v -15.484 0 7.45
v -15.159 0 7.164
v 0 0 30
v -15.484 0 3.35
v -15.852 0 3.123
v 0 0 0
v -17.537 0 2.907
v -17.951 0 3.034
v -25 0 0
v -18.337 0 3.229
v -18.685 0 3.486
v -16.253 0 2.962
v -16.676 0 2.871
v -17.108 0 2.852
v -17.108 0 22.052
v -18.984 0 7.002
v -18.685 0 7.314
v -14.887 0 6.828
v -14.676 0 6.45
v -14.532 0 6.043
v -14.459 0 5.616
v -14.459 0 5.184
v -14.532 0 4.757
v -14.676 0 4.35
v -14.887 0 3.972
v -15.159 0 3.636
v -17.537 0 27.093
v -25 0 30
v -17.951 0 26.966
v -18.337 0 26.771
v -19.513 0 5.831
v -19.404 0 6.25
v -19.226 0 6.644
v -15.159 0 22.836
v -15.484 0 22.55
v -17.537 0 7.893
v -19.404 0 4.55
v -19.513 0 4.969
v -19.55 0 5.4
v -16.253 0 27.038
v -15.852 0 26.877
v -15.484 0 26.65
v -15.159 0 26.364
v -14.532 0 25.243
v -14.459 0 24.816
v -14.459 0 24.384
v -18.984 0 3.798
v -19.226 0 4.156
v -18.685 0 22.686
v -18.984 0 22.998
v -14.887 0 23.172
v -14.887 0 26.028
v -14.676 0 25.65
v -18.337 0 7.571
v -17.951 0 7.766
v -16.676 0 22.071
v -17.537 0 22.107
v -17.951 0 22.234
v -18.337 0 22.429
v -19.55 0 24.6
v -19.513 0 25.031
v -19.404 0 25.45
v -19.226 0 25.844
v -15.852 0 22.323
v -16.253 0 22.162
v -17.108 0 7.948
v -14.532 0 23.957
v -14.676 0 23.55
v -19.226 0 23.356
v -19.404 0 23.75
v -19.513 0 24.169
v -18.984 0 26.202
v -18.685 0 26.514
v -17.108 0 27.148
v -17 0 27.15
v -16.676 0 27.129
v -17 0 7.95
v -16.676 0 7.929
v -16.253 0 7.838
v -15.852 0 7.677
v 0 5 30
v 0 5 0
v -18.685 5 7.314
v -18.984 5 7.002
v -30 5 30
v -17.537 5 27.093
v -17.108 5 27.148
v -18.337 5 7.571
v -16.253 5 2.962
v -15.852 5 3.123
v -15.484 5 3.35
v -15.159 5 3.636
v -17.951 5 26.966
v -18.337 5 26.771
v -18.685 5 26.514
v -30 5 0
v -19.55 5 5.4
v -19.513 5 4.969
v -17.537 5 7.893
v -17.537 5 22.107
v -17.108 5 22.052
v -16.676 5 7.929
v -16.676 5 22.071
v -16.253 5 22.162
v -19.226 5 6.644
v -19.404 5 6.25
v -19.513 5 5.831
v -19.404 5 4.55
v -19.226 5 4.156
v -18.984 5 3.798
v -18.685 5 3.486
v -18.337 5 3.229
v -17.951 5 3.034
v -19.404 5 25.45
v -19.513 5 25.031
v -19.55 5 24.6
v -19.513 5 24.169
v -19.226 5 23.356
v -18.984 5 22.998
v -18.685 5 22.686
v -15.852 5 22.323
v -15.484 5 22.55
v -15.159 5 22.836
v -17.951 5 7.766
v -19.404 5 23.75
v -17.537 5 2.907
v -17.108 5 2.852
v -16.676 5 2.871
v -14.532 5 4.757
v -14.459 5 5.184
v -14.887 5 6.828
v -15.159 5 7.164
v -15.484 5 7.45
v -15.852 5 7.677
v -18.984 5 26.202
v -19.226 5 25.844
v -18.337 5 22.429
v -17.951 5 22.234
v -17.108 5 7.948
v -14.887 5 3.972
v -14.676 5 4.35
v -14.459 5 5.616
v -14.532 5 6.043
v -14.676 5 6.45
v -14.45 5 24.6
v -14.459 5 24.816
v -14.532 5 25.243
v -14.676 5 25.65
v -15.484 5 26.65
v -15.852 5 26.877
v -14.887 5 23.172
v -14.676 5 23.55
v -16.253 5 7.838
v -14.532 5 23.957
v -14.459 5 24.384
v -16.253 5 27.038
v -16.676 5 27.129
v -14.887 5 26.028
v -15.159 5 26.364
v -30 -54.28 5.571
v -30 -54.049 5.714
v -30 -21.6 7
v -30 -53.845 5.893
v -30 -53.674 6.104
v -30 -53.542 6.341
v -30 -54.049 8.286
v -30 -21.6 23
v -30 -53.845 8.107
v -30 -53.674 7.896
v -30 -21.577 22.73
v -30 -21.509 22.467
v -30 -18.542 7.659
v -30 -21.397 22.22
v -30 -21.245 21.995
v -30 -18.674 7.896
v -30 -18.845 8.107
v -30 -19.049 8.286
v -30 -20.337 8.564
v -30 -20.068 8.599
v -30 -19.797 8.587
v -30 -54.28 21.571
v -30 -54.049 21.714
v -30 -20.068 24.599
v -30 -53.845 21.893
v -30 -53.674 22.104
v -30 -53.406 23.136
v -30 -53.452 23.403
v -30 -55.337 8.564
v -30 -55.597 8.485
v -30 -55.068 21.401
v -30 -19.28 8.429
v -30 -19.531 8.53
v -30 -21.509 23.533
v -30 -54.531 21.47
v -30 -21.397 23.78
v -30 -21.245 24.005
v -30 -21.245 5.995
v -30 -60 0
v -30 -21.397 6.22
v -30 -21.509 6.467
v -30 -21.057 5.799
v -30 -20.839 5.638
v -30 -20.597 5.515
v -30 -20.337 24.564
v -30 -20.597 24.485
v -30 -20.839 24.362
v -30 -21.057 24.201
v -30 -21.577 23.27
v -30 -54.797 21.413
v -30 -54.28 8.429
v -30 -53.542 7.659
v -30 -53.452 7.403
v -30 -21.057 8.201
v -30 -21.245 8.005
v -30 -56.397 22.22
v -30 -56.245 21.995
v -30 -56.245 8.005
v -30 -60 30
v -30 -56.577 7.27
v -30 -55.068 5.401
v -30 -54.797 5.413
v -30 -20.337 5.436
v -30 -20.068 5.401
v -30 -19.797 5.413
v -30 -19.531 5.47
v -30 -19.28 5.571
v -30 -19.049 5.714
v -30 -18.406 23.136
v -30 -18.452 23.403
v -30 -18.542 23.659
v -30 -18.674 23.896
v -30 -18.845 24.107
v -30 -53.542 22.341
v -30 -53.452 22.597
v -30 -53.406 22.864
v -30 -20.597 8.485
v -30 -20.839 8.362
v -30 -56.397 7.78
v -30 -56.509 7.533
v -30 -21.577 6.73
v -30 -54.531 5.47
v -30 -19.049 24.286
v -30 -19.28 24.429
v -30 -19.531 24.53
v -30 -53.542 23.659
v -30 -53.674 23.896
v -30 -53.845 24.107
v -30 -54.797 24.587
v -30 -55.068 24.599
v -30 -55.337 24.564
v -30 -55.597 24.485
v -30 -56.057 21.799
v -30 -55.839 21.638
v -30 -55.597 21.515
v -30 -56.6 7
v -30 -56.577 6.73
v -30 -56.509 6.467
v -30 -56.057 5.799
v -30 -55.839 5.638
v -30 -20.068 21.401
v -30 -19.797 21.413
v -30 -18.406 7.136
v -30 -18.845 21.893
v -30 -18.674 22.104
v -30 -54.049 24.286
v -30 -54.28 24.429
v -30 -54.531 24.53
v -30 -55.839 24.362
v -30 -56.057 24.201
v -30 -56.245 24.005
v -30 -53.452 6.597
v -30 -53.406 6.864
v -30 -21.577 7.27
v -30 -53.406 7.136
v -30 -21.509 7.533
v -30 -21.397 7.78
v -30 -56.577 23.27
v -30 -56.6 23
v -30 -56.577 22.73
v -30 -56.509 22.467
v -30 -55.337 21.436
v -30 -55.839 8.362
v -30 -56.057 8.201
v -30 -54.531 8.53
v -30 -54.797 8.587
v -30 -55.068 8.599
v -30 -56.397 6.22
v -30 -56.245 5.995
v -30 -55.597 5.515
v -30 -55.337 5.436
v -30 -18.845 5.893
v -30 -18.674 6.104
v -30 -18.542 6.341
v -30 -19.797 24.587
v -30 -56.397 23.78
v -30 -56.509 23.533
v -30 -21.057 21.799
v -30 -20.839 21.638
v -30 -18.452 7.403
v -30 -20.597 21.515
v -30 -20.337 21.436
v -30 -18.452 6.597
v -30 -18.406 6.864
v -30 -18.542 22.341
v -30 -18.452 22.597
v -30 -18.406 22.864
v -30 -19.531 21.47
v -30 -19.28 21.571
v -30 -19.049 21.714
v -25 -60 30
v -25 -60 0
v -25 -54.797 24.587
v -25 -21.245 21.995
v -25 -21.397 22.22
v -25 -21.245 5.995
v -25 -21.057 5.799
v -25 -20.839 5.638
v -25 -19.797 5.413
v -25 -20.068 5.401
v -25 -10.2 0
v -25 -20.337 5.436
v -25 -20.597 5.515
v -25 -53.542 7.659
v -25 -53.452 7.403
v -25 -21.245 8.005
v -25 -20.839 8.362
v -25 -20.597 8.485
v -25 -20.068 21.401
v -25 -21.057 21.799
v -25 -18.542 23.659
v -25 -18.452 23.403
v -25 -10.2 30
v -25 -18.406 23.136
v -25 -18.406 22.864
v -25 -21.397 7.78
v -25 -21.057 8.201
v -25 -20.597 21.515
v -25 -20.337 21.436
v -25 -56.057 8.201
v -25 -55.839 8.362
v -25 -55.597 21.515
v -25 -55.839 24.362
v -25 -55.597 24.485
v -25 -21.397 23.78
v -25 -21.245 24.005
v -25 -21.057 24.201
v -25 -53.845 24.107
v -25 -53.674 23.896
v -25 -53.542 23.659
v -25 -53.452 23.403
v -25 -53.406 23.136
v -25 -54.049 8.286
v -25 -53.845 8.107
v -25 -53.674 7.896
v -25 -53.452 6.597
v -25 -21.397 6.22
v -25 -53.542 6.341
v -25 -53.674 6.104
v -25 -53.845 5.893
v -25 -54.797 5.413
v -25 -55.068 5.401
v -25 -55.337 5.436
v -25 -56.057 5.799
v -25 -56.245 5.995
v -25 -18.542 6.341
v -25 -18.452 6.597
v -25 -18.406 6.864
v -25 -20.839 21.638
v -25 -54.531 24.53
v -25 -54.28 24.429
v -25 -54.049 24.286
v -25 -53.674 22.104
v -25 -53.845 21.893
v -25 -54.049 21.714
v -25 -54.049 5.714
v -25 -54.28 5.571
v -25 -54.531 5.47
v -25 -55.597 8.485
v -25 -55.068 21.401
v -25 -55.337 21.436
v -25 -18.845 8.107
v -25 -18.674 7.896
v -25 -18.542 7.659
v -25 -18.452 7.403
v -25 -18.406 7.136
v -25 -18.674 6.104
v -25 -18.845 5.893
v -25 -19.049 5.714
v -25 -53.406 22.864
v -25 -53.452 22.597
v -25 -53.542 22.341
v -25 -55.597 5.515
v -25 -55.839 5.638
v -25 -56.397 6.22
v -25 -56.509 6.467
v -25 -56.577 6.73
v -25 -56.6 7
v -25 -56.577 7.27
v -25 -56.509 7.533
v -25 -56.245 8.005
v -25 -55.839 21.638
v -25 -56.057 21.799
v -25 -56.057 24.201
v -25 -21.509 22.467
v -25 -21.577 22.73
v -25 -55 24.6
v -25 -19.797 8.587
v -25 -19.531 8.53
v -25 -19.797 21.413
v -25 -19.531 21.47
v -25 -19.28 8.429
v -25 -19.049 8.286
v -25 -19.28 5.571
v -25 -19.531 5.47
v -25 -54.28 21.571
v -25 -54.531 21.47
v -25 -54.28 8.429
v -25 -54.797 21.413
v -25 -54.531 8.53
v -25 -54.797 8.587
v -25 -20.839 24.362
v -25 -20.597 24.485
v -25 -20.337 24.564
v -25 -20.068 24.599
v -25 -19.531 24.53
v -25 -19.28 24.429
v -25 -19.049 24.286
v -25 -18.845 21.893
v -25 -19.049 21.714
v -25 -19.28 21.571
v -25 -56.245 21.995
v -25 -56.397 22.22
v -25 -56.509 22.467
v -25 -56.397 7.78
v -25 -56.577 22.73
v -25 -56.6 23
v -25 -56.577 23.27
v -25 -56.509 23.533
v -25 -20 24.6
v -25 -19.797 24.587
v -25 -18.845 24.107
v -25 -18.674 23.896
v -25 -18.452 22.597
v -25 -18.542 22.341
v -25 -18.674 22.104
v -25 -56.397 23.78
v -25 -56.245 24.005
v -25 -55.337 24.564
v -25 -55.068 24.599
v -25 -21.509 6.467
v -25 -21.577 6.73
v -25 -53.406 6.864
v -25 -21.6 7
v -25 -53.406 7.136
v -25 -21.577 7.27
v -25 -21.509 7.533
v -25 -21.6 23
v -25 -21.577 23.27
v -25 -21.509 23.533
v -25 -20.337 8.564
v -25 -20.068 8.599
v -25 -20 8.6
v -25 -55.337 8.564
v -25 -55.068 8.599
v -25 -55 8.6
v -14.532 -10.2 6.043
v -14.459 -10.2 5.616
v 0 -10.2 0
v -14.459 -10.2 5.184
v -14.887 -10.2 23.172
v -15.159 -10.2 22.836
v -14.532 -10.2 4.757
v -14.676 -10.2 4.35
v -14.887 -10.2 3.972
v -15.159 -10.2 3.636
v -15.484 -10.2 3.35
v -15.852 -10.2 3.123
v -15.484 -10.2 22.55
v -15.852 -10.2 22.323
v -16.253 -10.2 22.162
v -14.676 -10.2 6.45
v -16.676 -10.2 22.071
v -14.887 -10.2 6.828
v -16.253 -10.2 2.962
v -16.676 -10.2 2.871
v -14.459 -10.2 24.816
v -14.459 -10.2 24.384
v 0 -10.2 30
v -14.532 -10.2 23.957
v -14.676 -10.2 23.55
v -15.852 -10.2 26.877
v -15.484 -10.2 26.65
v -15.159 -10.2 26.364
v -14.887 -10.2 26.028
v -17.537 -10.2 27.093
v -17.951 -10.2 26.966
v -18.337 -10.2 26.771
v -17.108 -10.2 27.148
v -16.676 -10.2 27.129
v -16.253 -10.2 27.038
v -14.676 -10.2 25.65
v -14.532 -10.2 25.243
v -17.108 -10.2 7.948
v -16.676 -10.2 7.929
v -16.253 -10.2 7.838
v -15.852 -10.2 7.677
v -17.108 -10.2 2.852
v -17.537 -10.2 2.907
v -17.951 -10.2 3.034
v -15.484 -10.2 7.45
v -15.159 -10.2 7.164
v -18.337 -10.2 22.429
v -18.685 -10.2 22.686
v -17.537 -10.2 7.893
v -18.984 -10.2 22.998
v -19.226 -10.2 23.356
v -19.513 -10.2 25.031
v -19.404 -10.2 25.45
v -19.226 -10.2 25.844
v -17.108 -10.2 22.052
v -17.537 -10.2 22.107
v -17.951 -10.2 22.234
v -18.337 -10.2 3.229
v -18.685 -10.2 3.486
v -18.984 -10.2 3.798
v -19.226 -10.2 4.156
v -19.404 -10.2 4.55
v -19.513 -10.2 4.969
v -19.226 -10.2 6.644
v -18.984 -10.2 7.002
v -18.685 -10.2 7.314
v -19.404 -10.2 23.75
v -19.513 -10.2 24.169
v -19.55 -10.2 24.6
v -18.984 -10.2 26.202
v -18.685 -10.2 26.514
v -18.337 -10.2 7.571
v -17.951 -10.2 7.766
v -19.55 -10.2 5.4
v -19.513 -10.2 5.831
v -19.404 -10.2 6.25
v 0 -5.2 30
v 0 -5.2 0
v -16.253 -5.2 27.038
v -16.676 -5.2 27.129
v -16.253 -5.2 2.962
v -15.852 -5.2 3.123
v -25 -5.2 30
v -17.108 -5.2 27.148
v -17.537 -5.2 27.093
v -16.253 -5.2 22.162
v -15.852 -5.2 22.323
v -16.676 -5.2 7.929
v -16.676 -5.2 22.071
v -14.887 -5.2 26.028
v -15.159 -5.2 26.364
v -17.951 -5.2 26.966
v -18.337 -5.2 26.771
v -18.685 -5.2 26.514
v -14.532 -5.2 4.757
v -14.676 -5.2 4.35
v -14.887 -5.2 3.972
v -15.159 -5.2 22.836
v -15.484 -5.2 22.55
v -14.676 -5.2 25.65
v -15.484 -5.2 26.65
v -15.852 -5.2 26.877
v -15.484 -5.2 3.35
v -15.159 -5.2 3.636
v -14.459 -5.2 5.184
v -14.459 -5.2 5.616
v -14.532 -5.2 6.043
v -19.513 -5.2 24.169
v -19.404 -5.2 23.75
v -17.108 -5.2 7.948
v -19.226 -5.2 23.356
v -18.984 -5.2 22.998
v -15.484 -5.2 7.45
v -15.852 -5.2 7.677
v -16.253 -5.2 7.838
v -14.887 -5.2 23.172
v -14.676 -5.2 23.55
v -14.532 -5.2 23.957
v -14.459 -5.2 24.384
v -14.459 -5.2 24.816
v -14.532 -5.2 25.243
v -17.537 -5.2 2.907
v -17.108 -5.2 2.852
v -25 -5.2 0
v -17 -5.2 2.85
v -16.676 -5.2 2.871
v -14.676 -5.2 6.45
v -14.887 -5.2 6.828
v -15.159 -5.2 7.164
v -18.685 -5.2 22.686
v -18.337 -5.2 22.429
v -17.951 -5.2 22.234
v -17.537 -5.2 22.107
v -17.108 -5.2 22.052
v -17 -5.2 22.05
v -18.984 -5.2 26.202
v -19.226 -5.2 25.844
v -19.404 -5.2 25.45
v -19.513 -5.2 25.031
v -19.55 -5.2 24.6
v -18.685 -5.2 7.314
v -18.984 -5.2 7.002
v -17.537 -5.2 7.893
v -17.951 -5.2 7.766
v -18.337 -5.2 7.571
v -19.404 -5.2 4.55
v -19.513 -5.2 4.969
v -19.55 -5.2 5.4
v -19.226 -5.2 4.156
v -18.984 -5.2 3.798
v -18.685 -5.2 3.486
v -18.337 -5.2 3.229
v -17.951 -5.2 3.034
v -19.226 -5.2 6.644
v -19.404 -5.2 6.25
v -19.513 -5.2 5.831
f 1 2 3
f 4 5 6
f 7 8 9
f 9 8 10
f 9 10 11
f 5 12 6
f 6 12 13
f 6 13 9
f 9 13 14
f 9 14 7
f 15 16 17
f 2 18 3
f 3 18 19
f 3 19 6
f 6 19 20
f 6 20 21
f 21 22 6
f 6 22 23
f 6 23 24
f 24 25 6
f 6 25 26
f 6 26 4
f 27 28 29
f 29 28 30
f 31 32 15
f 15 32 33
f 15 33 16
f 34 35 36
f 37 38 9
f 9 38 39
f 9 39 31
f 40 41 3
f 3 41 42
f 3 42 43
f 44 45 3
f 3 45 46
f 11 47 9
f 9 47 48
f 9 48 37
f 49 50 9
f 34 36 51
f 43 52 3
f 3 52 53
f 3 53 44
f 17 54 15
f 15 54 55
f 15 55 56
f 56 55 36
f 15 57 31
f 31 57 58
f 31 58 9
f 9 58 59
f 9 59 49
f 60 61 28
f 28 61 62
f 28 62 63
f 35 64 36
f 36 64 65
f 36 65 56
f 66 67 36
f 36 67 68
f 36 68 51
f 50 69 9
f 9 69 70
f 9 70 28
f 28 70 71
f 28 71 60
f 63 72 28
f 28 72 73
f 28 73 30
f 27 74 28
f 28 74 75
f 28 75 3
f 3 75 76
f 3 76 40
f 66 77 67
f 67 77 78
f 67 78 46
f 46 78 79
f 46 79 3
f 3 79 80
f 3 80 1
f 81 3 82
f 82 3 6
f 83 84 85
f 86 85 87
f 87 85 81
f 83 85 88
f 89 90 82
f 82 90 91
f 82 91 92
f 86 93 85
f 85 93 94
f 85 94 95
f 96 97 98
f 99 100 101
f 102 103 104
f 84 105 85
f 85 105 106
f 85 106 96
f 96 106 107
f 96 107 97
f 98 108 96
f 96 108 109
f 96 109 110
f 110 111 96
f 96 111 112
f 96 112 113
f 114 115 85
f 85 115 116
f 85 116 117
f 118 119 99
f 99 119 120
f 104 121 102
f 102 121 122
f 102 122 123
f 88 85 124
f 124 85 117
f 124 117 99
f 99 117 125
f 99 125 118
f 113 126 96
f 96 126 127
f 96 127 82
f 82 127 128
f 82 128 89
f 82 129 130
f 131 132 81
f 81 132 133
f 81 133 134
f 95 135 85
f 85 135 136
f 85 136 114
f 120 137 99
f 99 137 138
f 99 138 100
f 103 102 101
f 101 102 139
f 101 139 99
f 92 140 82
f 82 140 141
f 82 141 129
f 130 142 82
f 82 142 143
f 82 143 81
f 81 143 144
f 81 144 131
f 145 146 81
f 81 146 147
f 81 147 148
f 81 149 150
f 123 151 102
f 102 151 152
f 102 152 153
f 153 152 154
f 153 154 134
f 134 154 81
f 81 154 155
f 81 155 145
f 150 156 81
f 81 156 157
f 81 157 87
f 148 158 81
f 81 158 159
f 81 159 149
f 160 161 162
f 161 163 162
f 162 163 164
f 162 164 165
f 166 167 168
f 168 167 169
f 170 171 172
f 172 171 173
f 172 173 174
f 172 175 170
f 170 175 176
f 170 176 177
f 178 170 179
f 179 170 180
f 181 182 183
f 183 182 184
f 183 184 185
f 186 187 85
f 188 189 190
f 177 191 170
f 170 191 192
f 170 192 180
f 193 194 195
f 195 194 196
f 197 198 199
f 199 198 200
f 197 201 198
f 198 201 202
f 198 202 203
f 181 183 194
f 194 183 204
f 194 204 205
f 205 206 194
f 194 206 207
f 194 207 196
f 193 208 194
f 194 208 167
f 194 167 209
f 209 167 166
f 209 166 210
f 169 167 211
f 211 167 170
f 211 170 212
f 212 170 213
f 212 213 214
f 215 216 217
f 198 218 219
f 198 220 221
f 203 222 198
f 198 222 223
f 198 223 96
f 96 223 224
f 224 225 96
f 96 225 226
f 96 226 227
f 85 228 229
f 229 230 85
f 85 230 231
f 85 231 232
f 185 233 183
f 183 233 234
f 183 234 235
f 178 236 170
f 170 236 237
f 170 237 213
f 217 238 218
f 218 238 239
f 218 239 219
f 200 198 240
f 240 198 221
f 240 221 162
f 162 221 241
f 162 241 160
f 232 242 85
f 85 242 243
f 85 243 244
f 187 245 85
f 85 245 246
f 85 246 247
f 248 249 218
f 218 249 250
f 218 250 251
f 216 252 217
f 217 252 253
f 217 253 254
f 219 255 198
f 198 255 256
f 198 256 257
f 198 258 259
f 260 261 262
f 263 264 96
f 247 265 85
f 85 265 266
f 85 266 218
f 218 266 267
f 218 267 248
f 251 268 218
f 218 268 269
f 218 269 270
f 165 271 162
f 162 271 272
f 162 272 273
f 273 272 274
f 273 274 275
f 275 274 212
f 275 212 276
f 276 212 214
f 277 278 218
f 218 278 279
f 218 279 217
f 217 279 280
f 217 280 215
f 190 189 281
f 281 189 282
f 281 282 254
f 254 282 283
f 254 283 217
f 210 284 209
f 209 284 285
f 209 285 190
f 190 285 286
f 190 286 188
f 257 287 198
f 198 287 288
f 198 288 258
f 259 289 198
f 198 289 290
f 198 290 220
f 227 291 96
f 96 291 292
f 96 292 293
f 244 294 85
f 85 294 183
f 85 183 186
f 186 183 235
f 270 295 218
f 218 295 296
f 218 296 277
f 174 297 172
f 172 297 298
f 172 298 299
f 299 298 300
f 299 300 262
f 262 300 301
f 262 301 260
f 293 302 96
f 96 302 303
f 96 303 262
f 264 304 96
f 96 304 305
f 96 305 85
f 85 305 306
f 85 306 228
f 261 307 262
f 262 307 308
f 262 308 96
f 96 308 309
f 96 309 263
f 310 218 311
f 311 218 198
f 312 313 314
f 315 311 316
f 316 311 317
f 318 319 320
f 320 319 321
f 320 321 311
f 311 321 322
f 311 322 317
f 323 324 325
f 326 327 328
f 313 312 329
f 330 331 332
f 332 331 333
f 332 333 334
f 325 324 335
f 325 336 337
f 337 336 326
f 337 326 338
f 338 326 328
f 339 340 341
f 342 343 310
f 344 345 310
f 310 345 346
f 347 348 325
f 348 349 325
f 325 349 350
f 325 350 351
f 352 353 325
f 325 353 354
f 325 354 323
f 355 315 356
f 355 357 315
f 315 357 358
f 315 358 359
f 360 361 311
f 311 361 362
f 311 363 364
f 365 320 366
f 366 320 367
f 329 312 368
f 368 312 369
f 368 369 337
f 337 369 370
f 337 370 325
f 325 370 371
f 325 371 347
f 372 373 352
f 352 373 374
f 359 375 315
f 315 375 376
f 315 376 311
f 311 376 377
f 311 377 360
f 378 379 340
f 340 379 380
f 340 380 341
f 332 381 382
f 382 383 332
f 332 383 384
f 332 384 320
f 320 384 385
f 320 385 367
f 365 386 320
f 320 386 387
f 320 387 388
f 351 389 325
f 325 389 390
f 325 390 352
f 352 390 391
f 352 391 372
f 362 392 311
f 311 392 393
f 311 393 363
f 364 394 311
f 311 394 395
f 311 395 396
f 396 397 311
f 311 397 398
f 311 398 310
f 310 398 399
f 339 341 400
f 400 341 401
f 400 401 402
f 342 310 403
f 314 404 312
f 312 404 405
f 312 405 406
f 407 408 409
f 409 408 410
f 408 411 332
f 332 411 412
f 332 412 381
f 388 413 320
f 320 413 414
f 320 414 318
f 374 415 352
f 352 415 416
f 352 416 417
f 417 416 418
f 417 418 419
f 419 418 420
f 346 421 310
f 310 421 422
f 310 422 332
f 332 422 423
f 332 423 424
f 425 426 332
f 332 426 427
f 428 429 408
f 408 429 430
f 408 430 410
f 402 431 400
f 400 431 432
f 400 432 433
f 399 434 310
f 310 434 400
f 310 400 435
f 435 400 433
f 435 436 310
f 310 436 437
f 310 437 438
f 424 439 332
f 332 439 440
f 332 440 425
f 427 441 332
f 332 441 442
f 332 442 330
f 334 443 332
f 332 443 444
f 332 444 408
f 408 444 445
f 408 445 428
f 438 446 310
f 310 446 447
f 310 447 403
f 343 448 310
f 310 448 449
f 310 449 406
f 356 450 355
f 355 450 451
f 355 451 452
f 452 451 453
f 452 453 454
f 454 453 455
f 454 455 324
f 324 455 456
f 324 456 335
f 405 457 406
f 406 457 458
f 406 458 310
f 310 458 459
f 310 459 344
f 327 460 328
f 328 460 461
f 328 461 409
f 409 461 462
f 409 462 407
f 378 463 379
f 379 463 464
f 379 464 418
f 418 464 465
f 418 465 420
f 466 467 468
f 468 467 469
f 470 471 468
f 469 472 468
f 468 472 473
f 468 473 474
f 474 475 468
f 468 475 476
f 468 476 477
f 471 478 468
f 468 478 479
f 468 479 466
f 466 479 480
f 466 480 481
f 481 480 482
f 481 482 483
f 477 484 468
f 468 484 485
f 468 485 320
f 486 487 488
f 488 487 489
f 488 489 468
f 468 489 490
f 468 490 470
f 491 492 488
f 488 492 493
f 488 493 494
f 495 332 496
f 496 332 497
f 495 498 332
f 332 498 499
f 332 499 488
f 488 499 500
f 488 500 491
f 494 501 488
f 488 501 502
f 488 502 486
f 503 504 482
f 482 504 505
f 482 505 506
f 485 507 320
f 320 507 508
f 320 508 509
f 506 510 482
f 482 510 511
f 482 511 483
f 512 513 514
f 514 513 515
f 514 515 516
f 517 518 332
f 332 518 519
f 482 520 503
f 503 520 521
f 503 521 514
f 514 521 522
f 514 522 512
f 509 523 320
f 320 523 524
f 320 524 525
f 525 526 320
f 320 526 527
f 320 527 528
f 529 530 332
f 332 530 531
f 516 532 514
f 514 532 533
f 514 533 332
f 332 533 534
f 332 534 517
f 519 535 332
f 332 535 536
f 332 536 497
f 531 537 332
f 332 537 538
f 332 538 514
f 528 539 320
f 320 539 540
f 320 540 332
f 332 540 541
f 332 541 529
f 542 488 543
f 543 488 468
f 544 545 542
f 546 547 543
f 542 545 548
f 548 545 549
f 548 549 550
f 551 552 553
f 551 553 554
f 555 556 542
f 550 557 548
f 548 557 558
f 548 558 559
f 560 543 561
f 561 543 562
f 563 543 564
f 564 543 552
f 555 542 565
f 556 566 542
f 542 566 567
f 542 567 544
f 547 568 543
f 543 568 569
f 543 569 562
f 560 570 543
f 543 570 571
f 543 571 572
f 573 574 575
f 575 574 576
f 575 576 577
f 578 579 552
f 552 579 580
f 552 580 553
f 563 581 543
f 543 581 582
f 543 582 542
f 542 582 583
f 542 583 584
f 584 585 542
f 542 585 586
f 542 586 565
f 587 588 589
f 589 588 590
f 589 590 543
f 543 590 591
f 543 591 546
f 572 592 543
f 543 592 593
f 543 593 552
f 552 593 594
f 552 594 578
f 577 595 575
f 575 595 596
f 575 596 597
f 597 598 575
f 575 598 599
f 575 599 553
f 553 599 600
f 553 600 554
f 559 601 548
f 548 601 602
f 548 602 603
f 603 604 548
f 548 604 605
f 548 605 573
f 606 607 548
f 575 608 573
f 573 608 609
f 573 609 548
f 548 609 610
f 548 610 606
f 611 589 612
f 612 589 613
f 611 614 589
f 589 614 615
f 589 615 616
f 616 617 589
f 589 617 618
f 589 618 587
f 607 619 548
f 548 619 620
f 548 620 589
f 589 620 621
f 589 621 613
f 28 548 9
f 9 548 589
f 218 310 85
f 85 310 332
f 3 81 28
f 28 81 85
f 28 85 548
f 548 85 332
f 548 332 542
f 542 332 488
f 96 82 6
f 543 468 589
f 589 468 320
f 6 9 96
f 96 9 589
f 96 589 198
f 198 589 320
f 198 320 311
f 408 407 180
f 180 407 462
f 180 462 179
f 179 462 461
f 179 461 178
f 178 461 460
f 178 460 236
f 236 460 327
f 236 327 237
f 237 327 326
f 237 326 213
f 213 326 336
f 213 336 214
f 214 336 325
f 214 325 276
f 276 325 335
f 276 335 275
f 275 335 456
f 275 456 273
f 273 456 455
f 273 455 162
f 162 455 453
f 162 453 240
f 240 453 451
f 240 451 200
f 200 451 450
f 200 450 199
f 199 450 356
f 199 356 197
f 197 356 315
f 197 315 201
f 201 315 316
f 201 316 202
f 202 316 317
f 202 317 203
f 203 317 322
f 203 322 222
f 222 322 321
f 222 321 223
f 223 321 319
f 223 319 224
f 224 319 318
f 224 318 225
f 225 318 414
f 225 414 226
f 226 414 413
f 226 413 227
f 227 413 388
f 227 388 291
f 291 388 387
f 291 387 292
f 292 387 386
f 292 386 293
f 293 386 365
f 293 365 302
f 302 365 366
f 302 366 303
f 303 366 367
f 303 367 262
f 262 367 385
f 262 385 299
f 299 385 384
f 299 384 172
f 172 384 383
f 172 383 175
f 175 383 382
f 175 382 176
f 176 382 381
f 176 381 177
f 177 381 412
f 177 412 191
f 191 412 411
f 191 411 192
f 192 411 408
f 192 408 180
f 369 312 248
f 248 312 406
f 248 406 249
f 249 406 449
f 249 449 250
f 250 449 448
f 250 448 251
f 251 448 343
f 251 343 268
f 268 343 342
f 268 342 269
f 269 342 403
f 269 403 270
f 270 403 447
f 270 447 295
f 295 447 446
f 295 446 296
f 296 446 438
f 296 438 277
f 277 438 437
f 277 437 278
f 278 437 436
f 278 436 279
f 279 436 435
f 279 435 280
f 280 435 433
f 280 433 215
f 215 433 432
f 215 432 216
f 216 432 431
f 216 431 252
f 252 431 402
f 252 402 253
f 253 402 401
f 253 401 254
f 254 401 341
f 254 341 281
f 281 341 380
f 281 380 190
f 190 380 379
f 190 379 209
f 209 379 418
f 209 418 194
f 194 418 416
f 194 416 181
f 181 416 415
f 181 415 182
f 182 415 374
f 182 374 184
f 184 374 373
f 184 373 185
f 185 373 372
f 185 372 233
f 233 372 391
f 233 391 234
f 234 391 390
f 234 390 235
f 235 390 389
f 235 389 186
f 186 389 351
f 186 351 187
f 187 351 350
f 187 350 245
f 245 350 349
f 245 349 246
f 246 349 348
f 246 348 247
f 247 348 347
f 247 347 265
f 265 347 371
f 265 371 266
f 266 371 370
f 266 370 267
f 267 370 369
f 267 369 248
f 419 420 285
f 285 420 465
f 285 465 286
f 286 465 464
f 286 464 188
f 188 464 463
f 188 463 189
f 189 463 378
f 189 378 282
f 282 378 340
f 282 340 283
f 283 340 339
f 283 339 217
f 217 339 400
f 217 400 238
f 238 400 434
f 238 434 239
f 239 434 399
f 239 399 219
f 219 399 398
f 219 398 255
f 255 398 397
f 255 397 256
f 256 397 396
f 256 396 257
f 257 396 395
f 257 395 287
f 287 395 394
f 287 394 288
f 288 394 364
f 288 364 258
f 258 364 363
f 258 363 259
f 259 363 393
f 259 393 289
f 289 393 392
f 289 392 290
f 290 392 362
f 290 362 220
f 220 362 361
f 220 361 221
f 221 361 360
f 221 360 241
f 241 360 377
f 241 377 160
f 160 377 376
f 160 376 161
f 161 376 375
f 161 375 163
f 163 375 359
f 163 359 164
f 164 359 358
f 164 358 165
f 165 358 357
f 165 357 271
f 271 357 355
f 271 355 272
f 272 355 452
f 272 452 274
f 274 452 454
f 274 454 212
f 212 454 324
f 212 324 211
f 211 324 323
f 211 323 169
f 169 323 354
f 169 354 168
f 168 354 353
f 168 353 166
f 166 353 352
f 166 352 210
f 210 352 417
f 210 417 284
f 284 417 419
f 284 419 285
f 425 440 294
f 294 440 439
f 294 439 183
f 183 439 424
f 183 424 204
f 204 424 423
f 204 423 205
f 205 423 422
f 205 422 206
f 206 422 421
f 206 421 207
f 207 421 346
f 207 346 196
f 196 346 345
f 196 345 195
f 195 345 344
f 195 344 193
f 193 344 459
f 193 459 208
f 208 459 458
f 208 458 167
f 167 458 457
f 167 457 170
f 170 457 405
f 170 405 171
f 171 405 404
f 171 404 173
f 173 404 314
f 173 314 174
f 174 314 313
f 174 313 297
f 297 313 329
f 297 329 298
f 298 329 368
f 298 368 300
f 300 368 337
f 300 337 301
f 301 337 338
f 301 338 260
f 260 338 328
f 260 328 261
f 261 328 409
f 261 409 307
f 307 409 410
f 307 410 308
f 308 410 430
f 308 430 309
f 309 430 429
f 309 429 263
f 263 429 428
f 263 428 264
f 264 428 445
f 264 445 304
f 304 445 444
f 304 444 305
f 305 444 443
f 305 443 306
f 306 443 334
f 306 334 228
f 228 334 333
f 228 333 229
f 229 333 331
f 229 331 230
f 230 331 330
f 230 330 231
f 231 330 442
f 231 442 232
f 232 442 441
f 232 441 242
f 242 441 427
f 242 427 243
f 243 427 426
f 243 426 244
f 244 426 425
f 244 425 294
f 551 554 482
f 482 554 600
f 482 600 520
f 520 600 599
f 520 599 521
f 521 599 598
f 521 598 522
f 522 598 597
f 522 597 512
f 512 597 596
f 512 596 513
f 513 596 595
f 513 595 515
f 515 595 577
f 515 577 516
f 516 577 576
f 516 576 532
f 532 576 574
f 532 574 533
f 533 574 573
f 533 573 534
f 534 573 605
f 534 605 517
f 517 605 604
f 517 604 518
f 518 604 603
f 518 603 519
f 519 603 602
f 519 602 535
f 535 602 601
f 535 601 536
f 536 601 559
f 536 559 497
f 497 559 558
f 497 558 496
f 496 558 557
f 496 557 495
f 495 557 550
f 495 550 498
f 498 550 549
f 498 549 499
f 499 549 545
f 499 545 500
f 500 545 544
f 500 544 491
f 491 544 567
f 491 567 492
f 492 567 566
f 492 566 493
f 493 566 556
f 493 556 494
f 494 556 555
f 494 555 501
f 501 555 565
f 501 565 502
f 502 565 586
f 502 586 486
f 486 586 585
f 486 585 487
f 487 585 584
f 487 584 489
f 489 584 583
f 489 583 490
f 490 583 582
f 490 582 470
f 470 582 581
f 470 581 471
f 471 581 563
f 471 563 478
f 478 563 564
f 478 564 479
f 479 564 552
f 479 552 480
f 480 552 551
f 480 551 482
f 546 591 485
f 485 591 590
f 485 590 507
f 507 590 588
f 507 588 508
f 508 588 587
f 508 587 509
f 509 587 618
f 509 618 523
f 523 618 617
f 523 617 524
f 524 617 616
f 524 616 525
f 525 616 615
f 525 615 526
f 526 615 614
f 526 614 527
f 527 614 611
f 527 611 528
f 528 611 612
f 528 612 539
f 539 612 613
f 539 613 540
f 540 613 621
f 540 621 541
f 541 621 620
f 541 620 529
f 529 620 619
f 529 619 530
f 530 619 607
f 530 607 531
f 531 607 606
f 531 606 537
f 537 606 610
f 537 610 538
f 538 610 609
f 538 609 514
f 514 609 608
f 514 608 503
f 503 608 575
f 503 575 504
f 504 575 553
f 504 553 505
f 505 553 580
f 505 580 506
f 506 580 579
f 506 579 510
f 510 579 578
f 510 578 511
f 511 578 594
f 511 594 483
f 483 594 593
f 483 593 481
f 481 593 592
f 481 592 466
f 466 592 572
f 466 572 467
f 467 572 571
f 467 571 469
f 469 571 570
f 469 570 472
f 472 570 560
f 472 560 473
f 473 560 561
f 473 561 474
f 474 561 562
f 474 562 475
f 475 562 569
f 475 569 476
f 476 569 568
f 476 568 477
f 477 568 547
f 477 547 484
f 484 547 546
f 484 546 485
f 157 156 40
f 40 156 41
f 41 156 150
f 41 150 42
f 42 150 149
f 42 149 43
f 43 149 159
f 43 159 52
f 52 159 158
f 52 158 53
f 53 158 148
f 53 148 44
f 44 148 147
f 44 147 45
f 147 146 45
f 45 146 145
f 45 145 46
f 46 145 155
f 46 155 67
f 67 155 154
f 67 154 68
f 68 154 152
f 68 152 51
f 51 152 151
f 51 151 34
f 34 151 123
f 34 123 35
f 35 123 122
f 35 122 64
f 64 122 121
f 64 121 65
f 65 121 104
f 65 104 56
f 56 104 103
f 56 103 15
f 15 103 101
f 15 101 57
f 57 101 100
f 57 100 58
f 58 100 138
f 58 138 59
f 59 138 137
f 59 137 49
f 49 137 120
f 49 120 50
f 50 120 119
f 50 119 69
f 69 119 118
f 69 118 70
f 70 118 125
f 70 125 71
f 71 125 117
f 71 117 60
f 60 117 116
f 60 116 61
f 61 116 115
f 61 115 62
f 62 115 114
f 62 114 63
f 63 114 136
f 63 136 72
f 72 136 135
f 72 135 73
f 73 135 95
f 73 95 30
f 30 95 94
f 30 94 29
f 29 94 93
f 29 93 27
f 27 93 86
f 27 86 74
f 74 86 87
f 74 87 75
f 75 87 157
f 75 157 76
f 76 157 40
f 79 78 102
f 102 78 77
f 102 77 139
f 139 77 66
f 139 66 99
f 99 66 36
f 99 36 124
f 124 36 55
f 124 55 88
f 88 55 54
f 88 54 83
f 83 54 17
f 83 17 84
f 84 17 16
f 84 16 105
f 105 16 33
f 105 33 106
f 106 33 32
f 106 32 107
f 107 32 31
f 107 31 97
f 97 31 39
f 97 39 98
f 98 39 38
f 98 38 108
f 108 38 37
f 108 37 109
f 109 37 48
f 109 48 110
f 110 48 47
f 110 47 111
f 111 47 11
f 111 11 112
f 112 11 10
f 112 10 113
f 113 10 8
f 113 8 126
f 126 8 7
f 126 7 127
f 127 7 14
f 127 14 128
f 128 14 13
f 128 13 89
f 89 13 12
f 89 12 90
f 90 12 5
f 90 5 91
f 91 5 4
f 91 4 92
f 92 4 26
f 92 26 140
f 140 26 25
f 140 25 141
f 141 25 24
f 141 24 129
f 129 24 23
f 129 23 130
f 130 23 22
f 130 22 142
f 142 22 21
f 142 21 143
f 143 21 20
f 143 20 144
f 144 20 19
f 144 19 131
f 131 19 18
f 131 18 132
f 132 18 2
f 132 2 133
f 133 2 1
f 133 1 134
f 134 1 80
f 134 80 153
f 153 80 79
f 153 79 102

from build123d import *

# Parameters (mm, degrees)
BOSS_EXTRUDE1_DEPTH = 30
CUT_EXTRUDE1_REACH  = 75.485
SKETCH2_R           = 1.6
SKETCH3_R           = 2.55
CUT_EXTRUDE2_DEPTH  = 78.620873481


with BuildPart() as part:
    # Sketch1 → Boss-Extrude1 (new body)
    with BuildSketch(Plane.XY):
        Polygon((0, 0), (0, 5), (-30, 5), (-30, -60), (-25, -60), (-25, -10.2), (0, -10.2), (0, -5.2), (-25, -5.2), (-25, 0), align=None)
    extrude(amount=BOSS_EXTRUDE1_DEPTH)

    # Sketch2 → Cut-Extrude1 (cut, up to next)
    with BuildSketch(Plane.ZY.offset(30), mode=Mode.PRIVATE) as cut_extrude1_sk1:
        with Locations(Location((7, -20, 0), (0, 0, 270))):
            Circle(SKETCH2_R)
    cut_extrude1_tool1 = extrude(cut_extrude1_sk1.sketch, amount=-CUT_EXTRUDE1_REACH, mode=Mode.PRIVATE) & part.part
    # Sketch2 → Cut-Extrude1 (cut, up to next)
    with BuildSketch(Plane.ZY.offset(30), mode=Mode.PRIVATE) as cut_extrude1_sk2:
        with Locations(Location((23, -20, 0), (0, 0, 270))):
            Circle(SKETCH2_R)
    cut_extrude1_tool2 = extrude(cut_extrude1_sk2.sketch, amount=-CUT_EXTRUDE1_REACH, mode=Mode.PRIVATE) & part.part
    # Sketch2 → Cut-Extrude1 (cut, up to next)
    with BuildSketch(Plane.ZY.offset(30), mode=Mode.PRIVATE) as cut_extrude1_sk3:
        with Locations(Location((7, -55, 0), (0, 0, 270))):
            Circle(SKETCH2_R)
    cut_extrude1_tool3 = extrude(cut_extrude1_sk3.sketch, amount=-CUT_EXTRUDE1_REACH, mode=Mode.PRIVATE) & part.part
    # Sketch2 → Cut-Extrude1 (cut, up to next)
    with BuildSketch(Plane.ZY.offset(30), mode=Mode.PRIVATE) as cut_extrude1_sk4:
        with Locations(Location((23, -55, 0), (0, 0, 270))):
            Circle(SKETCH2_R)
    cut_extrude1_tool4 = extrude(cut_extrude1_sk4.sketch, amount=-CUT_EXTRUDE1_REACH, mode=Mode.PRIVATE) & part.part
    add(cut_extrude1_tool1.solids().sort_by_distance((-30, -20, 7))[0], mode=Mode.SUBTRACT)
    add(cut_extrude1_tool2.solids().sort_by_distance((-30, -20, 23))[0], mode=Mode.SUBTRACT)
    add(cut_extrude1_tool3.solids().sort_by_distance((-30, -55, 7))[0], mode=Mode.SUBTRACT)
    add(cut_extrude1_tool4.solids().sort_by_distance((-30, -55, 23))[0], mode=Mode.SUBTRACT)

    # Sketch3 → Cut-Extrude2 (cut, through all)
    with BuildSketch(Plane(origin=(0, 5, 0), x_dir=(1, 0, 0), z_dir=(0, 1, 0))):
        with Locations(Location((-17, -5.4, 0), (0, 0, 180))):
            Circle(SKETCH3_R)
        with Locations(Location((-17, -24.6, 0), (0, 0, 180))):
            Circle(SKETCH3_R)
    extrude(amount=-CUT_EXTRUDE2_DEPTH, mode=Mode.SUBTRACT)


solid = part.part
